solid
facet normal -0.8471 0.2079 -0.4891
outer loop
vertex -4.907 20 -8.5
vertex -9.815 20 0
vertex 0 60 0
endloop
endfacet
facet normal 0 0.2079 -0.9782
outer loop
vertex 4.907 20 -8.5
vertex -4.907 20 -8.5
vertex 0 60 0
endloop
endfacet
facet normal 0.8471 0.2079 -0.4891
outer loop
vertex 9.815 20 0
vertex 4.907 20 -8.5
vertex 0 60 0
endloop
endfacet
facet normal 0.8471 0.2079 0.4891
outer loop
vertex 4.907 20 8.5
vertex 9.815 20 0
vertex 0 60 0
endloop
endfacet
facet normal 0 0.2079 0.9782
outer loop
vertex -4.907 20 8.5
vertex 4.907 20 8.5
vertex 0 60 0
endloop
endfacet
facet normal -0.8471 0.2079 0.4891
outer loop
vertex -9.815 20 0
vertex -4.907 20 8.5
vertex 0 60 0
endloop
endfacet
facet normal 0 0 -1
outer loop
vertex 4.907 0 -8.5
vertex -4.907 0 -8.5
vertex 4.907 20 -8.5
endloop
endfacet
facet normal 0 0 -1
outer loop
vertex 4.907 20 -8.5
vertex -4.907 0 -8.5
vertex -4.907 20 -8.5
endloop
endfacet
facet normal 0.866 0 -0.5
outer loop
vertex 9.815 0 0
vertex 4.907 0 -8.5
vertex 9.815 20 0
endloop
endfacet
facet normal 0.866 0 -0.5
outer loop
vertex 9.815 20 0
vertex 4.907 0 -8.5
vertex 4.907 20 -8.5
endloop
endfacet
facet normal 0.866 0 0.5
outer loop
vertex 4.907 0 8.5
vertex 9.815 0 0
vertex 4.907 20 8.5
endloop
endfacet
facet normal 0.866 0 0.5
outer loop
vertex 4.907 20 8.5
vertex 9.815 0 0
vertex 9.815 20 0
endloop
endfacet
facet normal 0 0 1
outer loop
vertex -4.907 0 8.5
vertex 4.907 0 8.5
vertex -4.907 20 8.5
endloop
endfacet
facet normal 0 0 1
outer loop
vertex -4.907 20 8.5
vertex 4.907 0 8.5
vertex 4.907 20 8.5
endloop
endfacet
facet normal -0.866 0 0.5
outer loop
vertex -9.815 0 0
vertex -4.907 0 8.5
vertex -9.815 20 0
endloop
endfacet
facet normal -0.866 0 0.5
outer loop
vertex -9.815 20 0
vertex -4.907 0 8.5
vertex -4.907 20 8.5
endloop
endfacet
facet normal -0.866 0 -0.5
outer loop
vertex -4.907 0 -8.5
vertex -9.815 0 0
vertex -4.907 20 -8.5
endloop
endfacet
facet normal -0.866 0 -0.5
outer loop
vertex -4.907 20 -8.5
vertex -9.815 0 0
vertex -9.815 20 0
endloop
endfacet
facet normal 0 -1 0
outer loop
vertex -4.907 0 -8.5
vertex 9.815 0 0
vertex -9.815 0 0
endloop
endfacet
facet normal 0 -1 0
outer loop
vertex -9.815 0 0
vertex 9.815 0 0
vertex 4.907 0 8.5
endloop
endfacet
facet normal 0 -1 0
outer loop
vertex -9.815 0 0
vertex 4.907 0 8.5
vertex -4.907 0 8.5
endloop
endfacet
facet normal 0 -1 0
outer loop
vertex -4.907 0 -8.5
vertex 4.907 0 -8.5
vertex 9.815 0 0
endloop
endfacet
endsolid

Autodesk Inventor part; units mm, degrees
ref_plane "YZ Plane" through (0, 0, 0) normal (1, 0, 0) x (0, 1, 0)
ref_plane "XZ Plane" through (0, 0, 0) normal (0, 1, 0) x (-1, 0, 0)
ref_plane "XY Plane" through (0, 0, 0) normal (0, 0, 1) x (1, 0, 0)
sketch "Sketch1" plane through (0, 0, 0) normal (0, 1, 0) x (-1, 0, 0)
  line L0 (-4.9075, -8.5) -> (-9.815, 0)
  line L1 (-9.815, 0) -> (-4.9075, 8.5)
  line L2 (-4.9075, 8.5) -> (4.9075, 8.5)
  line L3 (4.9075, 8.5) -> (9.815, 0)
  line L4 (9.815, 0) -> (4.9075, -8.5)
  line L5 (4.9075, -8.5) -> (-4.9075, -8.5)
  point P0 (0, 0)
  point P1 (0, 0)
  dimension "d0" = 17
extrude "Extrusion1" add sketch "Sketch1" along normal blind 20
ref_plane "Work Plane1" through (0, 60, 0) normal (0, 1, 0) x (1, 0, 0)
sketch "Sketch2" plane through (0, 60, 0) normal (0, 1, 0) x (1, 0, 0)
  point P0 (0, 0)
  point P1 (0, 0)
loft "Loft1" add section 1 edges at (-7.3612, 20, -4.25) (-7.3612, 20, 4.25) (0, 20, 8.5) (7.3612, 20, 4.25) (7.3612, 20, -4.25) (0, 20, -8.5) section 2 point at (0, 60, 0)
properties part number "Punta caibración_3DPrint"
